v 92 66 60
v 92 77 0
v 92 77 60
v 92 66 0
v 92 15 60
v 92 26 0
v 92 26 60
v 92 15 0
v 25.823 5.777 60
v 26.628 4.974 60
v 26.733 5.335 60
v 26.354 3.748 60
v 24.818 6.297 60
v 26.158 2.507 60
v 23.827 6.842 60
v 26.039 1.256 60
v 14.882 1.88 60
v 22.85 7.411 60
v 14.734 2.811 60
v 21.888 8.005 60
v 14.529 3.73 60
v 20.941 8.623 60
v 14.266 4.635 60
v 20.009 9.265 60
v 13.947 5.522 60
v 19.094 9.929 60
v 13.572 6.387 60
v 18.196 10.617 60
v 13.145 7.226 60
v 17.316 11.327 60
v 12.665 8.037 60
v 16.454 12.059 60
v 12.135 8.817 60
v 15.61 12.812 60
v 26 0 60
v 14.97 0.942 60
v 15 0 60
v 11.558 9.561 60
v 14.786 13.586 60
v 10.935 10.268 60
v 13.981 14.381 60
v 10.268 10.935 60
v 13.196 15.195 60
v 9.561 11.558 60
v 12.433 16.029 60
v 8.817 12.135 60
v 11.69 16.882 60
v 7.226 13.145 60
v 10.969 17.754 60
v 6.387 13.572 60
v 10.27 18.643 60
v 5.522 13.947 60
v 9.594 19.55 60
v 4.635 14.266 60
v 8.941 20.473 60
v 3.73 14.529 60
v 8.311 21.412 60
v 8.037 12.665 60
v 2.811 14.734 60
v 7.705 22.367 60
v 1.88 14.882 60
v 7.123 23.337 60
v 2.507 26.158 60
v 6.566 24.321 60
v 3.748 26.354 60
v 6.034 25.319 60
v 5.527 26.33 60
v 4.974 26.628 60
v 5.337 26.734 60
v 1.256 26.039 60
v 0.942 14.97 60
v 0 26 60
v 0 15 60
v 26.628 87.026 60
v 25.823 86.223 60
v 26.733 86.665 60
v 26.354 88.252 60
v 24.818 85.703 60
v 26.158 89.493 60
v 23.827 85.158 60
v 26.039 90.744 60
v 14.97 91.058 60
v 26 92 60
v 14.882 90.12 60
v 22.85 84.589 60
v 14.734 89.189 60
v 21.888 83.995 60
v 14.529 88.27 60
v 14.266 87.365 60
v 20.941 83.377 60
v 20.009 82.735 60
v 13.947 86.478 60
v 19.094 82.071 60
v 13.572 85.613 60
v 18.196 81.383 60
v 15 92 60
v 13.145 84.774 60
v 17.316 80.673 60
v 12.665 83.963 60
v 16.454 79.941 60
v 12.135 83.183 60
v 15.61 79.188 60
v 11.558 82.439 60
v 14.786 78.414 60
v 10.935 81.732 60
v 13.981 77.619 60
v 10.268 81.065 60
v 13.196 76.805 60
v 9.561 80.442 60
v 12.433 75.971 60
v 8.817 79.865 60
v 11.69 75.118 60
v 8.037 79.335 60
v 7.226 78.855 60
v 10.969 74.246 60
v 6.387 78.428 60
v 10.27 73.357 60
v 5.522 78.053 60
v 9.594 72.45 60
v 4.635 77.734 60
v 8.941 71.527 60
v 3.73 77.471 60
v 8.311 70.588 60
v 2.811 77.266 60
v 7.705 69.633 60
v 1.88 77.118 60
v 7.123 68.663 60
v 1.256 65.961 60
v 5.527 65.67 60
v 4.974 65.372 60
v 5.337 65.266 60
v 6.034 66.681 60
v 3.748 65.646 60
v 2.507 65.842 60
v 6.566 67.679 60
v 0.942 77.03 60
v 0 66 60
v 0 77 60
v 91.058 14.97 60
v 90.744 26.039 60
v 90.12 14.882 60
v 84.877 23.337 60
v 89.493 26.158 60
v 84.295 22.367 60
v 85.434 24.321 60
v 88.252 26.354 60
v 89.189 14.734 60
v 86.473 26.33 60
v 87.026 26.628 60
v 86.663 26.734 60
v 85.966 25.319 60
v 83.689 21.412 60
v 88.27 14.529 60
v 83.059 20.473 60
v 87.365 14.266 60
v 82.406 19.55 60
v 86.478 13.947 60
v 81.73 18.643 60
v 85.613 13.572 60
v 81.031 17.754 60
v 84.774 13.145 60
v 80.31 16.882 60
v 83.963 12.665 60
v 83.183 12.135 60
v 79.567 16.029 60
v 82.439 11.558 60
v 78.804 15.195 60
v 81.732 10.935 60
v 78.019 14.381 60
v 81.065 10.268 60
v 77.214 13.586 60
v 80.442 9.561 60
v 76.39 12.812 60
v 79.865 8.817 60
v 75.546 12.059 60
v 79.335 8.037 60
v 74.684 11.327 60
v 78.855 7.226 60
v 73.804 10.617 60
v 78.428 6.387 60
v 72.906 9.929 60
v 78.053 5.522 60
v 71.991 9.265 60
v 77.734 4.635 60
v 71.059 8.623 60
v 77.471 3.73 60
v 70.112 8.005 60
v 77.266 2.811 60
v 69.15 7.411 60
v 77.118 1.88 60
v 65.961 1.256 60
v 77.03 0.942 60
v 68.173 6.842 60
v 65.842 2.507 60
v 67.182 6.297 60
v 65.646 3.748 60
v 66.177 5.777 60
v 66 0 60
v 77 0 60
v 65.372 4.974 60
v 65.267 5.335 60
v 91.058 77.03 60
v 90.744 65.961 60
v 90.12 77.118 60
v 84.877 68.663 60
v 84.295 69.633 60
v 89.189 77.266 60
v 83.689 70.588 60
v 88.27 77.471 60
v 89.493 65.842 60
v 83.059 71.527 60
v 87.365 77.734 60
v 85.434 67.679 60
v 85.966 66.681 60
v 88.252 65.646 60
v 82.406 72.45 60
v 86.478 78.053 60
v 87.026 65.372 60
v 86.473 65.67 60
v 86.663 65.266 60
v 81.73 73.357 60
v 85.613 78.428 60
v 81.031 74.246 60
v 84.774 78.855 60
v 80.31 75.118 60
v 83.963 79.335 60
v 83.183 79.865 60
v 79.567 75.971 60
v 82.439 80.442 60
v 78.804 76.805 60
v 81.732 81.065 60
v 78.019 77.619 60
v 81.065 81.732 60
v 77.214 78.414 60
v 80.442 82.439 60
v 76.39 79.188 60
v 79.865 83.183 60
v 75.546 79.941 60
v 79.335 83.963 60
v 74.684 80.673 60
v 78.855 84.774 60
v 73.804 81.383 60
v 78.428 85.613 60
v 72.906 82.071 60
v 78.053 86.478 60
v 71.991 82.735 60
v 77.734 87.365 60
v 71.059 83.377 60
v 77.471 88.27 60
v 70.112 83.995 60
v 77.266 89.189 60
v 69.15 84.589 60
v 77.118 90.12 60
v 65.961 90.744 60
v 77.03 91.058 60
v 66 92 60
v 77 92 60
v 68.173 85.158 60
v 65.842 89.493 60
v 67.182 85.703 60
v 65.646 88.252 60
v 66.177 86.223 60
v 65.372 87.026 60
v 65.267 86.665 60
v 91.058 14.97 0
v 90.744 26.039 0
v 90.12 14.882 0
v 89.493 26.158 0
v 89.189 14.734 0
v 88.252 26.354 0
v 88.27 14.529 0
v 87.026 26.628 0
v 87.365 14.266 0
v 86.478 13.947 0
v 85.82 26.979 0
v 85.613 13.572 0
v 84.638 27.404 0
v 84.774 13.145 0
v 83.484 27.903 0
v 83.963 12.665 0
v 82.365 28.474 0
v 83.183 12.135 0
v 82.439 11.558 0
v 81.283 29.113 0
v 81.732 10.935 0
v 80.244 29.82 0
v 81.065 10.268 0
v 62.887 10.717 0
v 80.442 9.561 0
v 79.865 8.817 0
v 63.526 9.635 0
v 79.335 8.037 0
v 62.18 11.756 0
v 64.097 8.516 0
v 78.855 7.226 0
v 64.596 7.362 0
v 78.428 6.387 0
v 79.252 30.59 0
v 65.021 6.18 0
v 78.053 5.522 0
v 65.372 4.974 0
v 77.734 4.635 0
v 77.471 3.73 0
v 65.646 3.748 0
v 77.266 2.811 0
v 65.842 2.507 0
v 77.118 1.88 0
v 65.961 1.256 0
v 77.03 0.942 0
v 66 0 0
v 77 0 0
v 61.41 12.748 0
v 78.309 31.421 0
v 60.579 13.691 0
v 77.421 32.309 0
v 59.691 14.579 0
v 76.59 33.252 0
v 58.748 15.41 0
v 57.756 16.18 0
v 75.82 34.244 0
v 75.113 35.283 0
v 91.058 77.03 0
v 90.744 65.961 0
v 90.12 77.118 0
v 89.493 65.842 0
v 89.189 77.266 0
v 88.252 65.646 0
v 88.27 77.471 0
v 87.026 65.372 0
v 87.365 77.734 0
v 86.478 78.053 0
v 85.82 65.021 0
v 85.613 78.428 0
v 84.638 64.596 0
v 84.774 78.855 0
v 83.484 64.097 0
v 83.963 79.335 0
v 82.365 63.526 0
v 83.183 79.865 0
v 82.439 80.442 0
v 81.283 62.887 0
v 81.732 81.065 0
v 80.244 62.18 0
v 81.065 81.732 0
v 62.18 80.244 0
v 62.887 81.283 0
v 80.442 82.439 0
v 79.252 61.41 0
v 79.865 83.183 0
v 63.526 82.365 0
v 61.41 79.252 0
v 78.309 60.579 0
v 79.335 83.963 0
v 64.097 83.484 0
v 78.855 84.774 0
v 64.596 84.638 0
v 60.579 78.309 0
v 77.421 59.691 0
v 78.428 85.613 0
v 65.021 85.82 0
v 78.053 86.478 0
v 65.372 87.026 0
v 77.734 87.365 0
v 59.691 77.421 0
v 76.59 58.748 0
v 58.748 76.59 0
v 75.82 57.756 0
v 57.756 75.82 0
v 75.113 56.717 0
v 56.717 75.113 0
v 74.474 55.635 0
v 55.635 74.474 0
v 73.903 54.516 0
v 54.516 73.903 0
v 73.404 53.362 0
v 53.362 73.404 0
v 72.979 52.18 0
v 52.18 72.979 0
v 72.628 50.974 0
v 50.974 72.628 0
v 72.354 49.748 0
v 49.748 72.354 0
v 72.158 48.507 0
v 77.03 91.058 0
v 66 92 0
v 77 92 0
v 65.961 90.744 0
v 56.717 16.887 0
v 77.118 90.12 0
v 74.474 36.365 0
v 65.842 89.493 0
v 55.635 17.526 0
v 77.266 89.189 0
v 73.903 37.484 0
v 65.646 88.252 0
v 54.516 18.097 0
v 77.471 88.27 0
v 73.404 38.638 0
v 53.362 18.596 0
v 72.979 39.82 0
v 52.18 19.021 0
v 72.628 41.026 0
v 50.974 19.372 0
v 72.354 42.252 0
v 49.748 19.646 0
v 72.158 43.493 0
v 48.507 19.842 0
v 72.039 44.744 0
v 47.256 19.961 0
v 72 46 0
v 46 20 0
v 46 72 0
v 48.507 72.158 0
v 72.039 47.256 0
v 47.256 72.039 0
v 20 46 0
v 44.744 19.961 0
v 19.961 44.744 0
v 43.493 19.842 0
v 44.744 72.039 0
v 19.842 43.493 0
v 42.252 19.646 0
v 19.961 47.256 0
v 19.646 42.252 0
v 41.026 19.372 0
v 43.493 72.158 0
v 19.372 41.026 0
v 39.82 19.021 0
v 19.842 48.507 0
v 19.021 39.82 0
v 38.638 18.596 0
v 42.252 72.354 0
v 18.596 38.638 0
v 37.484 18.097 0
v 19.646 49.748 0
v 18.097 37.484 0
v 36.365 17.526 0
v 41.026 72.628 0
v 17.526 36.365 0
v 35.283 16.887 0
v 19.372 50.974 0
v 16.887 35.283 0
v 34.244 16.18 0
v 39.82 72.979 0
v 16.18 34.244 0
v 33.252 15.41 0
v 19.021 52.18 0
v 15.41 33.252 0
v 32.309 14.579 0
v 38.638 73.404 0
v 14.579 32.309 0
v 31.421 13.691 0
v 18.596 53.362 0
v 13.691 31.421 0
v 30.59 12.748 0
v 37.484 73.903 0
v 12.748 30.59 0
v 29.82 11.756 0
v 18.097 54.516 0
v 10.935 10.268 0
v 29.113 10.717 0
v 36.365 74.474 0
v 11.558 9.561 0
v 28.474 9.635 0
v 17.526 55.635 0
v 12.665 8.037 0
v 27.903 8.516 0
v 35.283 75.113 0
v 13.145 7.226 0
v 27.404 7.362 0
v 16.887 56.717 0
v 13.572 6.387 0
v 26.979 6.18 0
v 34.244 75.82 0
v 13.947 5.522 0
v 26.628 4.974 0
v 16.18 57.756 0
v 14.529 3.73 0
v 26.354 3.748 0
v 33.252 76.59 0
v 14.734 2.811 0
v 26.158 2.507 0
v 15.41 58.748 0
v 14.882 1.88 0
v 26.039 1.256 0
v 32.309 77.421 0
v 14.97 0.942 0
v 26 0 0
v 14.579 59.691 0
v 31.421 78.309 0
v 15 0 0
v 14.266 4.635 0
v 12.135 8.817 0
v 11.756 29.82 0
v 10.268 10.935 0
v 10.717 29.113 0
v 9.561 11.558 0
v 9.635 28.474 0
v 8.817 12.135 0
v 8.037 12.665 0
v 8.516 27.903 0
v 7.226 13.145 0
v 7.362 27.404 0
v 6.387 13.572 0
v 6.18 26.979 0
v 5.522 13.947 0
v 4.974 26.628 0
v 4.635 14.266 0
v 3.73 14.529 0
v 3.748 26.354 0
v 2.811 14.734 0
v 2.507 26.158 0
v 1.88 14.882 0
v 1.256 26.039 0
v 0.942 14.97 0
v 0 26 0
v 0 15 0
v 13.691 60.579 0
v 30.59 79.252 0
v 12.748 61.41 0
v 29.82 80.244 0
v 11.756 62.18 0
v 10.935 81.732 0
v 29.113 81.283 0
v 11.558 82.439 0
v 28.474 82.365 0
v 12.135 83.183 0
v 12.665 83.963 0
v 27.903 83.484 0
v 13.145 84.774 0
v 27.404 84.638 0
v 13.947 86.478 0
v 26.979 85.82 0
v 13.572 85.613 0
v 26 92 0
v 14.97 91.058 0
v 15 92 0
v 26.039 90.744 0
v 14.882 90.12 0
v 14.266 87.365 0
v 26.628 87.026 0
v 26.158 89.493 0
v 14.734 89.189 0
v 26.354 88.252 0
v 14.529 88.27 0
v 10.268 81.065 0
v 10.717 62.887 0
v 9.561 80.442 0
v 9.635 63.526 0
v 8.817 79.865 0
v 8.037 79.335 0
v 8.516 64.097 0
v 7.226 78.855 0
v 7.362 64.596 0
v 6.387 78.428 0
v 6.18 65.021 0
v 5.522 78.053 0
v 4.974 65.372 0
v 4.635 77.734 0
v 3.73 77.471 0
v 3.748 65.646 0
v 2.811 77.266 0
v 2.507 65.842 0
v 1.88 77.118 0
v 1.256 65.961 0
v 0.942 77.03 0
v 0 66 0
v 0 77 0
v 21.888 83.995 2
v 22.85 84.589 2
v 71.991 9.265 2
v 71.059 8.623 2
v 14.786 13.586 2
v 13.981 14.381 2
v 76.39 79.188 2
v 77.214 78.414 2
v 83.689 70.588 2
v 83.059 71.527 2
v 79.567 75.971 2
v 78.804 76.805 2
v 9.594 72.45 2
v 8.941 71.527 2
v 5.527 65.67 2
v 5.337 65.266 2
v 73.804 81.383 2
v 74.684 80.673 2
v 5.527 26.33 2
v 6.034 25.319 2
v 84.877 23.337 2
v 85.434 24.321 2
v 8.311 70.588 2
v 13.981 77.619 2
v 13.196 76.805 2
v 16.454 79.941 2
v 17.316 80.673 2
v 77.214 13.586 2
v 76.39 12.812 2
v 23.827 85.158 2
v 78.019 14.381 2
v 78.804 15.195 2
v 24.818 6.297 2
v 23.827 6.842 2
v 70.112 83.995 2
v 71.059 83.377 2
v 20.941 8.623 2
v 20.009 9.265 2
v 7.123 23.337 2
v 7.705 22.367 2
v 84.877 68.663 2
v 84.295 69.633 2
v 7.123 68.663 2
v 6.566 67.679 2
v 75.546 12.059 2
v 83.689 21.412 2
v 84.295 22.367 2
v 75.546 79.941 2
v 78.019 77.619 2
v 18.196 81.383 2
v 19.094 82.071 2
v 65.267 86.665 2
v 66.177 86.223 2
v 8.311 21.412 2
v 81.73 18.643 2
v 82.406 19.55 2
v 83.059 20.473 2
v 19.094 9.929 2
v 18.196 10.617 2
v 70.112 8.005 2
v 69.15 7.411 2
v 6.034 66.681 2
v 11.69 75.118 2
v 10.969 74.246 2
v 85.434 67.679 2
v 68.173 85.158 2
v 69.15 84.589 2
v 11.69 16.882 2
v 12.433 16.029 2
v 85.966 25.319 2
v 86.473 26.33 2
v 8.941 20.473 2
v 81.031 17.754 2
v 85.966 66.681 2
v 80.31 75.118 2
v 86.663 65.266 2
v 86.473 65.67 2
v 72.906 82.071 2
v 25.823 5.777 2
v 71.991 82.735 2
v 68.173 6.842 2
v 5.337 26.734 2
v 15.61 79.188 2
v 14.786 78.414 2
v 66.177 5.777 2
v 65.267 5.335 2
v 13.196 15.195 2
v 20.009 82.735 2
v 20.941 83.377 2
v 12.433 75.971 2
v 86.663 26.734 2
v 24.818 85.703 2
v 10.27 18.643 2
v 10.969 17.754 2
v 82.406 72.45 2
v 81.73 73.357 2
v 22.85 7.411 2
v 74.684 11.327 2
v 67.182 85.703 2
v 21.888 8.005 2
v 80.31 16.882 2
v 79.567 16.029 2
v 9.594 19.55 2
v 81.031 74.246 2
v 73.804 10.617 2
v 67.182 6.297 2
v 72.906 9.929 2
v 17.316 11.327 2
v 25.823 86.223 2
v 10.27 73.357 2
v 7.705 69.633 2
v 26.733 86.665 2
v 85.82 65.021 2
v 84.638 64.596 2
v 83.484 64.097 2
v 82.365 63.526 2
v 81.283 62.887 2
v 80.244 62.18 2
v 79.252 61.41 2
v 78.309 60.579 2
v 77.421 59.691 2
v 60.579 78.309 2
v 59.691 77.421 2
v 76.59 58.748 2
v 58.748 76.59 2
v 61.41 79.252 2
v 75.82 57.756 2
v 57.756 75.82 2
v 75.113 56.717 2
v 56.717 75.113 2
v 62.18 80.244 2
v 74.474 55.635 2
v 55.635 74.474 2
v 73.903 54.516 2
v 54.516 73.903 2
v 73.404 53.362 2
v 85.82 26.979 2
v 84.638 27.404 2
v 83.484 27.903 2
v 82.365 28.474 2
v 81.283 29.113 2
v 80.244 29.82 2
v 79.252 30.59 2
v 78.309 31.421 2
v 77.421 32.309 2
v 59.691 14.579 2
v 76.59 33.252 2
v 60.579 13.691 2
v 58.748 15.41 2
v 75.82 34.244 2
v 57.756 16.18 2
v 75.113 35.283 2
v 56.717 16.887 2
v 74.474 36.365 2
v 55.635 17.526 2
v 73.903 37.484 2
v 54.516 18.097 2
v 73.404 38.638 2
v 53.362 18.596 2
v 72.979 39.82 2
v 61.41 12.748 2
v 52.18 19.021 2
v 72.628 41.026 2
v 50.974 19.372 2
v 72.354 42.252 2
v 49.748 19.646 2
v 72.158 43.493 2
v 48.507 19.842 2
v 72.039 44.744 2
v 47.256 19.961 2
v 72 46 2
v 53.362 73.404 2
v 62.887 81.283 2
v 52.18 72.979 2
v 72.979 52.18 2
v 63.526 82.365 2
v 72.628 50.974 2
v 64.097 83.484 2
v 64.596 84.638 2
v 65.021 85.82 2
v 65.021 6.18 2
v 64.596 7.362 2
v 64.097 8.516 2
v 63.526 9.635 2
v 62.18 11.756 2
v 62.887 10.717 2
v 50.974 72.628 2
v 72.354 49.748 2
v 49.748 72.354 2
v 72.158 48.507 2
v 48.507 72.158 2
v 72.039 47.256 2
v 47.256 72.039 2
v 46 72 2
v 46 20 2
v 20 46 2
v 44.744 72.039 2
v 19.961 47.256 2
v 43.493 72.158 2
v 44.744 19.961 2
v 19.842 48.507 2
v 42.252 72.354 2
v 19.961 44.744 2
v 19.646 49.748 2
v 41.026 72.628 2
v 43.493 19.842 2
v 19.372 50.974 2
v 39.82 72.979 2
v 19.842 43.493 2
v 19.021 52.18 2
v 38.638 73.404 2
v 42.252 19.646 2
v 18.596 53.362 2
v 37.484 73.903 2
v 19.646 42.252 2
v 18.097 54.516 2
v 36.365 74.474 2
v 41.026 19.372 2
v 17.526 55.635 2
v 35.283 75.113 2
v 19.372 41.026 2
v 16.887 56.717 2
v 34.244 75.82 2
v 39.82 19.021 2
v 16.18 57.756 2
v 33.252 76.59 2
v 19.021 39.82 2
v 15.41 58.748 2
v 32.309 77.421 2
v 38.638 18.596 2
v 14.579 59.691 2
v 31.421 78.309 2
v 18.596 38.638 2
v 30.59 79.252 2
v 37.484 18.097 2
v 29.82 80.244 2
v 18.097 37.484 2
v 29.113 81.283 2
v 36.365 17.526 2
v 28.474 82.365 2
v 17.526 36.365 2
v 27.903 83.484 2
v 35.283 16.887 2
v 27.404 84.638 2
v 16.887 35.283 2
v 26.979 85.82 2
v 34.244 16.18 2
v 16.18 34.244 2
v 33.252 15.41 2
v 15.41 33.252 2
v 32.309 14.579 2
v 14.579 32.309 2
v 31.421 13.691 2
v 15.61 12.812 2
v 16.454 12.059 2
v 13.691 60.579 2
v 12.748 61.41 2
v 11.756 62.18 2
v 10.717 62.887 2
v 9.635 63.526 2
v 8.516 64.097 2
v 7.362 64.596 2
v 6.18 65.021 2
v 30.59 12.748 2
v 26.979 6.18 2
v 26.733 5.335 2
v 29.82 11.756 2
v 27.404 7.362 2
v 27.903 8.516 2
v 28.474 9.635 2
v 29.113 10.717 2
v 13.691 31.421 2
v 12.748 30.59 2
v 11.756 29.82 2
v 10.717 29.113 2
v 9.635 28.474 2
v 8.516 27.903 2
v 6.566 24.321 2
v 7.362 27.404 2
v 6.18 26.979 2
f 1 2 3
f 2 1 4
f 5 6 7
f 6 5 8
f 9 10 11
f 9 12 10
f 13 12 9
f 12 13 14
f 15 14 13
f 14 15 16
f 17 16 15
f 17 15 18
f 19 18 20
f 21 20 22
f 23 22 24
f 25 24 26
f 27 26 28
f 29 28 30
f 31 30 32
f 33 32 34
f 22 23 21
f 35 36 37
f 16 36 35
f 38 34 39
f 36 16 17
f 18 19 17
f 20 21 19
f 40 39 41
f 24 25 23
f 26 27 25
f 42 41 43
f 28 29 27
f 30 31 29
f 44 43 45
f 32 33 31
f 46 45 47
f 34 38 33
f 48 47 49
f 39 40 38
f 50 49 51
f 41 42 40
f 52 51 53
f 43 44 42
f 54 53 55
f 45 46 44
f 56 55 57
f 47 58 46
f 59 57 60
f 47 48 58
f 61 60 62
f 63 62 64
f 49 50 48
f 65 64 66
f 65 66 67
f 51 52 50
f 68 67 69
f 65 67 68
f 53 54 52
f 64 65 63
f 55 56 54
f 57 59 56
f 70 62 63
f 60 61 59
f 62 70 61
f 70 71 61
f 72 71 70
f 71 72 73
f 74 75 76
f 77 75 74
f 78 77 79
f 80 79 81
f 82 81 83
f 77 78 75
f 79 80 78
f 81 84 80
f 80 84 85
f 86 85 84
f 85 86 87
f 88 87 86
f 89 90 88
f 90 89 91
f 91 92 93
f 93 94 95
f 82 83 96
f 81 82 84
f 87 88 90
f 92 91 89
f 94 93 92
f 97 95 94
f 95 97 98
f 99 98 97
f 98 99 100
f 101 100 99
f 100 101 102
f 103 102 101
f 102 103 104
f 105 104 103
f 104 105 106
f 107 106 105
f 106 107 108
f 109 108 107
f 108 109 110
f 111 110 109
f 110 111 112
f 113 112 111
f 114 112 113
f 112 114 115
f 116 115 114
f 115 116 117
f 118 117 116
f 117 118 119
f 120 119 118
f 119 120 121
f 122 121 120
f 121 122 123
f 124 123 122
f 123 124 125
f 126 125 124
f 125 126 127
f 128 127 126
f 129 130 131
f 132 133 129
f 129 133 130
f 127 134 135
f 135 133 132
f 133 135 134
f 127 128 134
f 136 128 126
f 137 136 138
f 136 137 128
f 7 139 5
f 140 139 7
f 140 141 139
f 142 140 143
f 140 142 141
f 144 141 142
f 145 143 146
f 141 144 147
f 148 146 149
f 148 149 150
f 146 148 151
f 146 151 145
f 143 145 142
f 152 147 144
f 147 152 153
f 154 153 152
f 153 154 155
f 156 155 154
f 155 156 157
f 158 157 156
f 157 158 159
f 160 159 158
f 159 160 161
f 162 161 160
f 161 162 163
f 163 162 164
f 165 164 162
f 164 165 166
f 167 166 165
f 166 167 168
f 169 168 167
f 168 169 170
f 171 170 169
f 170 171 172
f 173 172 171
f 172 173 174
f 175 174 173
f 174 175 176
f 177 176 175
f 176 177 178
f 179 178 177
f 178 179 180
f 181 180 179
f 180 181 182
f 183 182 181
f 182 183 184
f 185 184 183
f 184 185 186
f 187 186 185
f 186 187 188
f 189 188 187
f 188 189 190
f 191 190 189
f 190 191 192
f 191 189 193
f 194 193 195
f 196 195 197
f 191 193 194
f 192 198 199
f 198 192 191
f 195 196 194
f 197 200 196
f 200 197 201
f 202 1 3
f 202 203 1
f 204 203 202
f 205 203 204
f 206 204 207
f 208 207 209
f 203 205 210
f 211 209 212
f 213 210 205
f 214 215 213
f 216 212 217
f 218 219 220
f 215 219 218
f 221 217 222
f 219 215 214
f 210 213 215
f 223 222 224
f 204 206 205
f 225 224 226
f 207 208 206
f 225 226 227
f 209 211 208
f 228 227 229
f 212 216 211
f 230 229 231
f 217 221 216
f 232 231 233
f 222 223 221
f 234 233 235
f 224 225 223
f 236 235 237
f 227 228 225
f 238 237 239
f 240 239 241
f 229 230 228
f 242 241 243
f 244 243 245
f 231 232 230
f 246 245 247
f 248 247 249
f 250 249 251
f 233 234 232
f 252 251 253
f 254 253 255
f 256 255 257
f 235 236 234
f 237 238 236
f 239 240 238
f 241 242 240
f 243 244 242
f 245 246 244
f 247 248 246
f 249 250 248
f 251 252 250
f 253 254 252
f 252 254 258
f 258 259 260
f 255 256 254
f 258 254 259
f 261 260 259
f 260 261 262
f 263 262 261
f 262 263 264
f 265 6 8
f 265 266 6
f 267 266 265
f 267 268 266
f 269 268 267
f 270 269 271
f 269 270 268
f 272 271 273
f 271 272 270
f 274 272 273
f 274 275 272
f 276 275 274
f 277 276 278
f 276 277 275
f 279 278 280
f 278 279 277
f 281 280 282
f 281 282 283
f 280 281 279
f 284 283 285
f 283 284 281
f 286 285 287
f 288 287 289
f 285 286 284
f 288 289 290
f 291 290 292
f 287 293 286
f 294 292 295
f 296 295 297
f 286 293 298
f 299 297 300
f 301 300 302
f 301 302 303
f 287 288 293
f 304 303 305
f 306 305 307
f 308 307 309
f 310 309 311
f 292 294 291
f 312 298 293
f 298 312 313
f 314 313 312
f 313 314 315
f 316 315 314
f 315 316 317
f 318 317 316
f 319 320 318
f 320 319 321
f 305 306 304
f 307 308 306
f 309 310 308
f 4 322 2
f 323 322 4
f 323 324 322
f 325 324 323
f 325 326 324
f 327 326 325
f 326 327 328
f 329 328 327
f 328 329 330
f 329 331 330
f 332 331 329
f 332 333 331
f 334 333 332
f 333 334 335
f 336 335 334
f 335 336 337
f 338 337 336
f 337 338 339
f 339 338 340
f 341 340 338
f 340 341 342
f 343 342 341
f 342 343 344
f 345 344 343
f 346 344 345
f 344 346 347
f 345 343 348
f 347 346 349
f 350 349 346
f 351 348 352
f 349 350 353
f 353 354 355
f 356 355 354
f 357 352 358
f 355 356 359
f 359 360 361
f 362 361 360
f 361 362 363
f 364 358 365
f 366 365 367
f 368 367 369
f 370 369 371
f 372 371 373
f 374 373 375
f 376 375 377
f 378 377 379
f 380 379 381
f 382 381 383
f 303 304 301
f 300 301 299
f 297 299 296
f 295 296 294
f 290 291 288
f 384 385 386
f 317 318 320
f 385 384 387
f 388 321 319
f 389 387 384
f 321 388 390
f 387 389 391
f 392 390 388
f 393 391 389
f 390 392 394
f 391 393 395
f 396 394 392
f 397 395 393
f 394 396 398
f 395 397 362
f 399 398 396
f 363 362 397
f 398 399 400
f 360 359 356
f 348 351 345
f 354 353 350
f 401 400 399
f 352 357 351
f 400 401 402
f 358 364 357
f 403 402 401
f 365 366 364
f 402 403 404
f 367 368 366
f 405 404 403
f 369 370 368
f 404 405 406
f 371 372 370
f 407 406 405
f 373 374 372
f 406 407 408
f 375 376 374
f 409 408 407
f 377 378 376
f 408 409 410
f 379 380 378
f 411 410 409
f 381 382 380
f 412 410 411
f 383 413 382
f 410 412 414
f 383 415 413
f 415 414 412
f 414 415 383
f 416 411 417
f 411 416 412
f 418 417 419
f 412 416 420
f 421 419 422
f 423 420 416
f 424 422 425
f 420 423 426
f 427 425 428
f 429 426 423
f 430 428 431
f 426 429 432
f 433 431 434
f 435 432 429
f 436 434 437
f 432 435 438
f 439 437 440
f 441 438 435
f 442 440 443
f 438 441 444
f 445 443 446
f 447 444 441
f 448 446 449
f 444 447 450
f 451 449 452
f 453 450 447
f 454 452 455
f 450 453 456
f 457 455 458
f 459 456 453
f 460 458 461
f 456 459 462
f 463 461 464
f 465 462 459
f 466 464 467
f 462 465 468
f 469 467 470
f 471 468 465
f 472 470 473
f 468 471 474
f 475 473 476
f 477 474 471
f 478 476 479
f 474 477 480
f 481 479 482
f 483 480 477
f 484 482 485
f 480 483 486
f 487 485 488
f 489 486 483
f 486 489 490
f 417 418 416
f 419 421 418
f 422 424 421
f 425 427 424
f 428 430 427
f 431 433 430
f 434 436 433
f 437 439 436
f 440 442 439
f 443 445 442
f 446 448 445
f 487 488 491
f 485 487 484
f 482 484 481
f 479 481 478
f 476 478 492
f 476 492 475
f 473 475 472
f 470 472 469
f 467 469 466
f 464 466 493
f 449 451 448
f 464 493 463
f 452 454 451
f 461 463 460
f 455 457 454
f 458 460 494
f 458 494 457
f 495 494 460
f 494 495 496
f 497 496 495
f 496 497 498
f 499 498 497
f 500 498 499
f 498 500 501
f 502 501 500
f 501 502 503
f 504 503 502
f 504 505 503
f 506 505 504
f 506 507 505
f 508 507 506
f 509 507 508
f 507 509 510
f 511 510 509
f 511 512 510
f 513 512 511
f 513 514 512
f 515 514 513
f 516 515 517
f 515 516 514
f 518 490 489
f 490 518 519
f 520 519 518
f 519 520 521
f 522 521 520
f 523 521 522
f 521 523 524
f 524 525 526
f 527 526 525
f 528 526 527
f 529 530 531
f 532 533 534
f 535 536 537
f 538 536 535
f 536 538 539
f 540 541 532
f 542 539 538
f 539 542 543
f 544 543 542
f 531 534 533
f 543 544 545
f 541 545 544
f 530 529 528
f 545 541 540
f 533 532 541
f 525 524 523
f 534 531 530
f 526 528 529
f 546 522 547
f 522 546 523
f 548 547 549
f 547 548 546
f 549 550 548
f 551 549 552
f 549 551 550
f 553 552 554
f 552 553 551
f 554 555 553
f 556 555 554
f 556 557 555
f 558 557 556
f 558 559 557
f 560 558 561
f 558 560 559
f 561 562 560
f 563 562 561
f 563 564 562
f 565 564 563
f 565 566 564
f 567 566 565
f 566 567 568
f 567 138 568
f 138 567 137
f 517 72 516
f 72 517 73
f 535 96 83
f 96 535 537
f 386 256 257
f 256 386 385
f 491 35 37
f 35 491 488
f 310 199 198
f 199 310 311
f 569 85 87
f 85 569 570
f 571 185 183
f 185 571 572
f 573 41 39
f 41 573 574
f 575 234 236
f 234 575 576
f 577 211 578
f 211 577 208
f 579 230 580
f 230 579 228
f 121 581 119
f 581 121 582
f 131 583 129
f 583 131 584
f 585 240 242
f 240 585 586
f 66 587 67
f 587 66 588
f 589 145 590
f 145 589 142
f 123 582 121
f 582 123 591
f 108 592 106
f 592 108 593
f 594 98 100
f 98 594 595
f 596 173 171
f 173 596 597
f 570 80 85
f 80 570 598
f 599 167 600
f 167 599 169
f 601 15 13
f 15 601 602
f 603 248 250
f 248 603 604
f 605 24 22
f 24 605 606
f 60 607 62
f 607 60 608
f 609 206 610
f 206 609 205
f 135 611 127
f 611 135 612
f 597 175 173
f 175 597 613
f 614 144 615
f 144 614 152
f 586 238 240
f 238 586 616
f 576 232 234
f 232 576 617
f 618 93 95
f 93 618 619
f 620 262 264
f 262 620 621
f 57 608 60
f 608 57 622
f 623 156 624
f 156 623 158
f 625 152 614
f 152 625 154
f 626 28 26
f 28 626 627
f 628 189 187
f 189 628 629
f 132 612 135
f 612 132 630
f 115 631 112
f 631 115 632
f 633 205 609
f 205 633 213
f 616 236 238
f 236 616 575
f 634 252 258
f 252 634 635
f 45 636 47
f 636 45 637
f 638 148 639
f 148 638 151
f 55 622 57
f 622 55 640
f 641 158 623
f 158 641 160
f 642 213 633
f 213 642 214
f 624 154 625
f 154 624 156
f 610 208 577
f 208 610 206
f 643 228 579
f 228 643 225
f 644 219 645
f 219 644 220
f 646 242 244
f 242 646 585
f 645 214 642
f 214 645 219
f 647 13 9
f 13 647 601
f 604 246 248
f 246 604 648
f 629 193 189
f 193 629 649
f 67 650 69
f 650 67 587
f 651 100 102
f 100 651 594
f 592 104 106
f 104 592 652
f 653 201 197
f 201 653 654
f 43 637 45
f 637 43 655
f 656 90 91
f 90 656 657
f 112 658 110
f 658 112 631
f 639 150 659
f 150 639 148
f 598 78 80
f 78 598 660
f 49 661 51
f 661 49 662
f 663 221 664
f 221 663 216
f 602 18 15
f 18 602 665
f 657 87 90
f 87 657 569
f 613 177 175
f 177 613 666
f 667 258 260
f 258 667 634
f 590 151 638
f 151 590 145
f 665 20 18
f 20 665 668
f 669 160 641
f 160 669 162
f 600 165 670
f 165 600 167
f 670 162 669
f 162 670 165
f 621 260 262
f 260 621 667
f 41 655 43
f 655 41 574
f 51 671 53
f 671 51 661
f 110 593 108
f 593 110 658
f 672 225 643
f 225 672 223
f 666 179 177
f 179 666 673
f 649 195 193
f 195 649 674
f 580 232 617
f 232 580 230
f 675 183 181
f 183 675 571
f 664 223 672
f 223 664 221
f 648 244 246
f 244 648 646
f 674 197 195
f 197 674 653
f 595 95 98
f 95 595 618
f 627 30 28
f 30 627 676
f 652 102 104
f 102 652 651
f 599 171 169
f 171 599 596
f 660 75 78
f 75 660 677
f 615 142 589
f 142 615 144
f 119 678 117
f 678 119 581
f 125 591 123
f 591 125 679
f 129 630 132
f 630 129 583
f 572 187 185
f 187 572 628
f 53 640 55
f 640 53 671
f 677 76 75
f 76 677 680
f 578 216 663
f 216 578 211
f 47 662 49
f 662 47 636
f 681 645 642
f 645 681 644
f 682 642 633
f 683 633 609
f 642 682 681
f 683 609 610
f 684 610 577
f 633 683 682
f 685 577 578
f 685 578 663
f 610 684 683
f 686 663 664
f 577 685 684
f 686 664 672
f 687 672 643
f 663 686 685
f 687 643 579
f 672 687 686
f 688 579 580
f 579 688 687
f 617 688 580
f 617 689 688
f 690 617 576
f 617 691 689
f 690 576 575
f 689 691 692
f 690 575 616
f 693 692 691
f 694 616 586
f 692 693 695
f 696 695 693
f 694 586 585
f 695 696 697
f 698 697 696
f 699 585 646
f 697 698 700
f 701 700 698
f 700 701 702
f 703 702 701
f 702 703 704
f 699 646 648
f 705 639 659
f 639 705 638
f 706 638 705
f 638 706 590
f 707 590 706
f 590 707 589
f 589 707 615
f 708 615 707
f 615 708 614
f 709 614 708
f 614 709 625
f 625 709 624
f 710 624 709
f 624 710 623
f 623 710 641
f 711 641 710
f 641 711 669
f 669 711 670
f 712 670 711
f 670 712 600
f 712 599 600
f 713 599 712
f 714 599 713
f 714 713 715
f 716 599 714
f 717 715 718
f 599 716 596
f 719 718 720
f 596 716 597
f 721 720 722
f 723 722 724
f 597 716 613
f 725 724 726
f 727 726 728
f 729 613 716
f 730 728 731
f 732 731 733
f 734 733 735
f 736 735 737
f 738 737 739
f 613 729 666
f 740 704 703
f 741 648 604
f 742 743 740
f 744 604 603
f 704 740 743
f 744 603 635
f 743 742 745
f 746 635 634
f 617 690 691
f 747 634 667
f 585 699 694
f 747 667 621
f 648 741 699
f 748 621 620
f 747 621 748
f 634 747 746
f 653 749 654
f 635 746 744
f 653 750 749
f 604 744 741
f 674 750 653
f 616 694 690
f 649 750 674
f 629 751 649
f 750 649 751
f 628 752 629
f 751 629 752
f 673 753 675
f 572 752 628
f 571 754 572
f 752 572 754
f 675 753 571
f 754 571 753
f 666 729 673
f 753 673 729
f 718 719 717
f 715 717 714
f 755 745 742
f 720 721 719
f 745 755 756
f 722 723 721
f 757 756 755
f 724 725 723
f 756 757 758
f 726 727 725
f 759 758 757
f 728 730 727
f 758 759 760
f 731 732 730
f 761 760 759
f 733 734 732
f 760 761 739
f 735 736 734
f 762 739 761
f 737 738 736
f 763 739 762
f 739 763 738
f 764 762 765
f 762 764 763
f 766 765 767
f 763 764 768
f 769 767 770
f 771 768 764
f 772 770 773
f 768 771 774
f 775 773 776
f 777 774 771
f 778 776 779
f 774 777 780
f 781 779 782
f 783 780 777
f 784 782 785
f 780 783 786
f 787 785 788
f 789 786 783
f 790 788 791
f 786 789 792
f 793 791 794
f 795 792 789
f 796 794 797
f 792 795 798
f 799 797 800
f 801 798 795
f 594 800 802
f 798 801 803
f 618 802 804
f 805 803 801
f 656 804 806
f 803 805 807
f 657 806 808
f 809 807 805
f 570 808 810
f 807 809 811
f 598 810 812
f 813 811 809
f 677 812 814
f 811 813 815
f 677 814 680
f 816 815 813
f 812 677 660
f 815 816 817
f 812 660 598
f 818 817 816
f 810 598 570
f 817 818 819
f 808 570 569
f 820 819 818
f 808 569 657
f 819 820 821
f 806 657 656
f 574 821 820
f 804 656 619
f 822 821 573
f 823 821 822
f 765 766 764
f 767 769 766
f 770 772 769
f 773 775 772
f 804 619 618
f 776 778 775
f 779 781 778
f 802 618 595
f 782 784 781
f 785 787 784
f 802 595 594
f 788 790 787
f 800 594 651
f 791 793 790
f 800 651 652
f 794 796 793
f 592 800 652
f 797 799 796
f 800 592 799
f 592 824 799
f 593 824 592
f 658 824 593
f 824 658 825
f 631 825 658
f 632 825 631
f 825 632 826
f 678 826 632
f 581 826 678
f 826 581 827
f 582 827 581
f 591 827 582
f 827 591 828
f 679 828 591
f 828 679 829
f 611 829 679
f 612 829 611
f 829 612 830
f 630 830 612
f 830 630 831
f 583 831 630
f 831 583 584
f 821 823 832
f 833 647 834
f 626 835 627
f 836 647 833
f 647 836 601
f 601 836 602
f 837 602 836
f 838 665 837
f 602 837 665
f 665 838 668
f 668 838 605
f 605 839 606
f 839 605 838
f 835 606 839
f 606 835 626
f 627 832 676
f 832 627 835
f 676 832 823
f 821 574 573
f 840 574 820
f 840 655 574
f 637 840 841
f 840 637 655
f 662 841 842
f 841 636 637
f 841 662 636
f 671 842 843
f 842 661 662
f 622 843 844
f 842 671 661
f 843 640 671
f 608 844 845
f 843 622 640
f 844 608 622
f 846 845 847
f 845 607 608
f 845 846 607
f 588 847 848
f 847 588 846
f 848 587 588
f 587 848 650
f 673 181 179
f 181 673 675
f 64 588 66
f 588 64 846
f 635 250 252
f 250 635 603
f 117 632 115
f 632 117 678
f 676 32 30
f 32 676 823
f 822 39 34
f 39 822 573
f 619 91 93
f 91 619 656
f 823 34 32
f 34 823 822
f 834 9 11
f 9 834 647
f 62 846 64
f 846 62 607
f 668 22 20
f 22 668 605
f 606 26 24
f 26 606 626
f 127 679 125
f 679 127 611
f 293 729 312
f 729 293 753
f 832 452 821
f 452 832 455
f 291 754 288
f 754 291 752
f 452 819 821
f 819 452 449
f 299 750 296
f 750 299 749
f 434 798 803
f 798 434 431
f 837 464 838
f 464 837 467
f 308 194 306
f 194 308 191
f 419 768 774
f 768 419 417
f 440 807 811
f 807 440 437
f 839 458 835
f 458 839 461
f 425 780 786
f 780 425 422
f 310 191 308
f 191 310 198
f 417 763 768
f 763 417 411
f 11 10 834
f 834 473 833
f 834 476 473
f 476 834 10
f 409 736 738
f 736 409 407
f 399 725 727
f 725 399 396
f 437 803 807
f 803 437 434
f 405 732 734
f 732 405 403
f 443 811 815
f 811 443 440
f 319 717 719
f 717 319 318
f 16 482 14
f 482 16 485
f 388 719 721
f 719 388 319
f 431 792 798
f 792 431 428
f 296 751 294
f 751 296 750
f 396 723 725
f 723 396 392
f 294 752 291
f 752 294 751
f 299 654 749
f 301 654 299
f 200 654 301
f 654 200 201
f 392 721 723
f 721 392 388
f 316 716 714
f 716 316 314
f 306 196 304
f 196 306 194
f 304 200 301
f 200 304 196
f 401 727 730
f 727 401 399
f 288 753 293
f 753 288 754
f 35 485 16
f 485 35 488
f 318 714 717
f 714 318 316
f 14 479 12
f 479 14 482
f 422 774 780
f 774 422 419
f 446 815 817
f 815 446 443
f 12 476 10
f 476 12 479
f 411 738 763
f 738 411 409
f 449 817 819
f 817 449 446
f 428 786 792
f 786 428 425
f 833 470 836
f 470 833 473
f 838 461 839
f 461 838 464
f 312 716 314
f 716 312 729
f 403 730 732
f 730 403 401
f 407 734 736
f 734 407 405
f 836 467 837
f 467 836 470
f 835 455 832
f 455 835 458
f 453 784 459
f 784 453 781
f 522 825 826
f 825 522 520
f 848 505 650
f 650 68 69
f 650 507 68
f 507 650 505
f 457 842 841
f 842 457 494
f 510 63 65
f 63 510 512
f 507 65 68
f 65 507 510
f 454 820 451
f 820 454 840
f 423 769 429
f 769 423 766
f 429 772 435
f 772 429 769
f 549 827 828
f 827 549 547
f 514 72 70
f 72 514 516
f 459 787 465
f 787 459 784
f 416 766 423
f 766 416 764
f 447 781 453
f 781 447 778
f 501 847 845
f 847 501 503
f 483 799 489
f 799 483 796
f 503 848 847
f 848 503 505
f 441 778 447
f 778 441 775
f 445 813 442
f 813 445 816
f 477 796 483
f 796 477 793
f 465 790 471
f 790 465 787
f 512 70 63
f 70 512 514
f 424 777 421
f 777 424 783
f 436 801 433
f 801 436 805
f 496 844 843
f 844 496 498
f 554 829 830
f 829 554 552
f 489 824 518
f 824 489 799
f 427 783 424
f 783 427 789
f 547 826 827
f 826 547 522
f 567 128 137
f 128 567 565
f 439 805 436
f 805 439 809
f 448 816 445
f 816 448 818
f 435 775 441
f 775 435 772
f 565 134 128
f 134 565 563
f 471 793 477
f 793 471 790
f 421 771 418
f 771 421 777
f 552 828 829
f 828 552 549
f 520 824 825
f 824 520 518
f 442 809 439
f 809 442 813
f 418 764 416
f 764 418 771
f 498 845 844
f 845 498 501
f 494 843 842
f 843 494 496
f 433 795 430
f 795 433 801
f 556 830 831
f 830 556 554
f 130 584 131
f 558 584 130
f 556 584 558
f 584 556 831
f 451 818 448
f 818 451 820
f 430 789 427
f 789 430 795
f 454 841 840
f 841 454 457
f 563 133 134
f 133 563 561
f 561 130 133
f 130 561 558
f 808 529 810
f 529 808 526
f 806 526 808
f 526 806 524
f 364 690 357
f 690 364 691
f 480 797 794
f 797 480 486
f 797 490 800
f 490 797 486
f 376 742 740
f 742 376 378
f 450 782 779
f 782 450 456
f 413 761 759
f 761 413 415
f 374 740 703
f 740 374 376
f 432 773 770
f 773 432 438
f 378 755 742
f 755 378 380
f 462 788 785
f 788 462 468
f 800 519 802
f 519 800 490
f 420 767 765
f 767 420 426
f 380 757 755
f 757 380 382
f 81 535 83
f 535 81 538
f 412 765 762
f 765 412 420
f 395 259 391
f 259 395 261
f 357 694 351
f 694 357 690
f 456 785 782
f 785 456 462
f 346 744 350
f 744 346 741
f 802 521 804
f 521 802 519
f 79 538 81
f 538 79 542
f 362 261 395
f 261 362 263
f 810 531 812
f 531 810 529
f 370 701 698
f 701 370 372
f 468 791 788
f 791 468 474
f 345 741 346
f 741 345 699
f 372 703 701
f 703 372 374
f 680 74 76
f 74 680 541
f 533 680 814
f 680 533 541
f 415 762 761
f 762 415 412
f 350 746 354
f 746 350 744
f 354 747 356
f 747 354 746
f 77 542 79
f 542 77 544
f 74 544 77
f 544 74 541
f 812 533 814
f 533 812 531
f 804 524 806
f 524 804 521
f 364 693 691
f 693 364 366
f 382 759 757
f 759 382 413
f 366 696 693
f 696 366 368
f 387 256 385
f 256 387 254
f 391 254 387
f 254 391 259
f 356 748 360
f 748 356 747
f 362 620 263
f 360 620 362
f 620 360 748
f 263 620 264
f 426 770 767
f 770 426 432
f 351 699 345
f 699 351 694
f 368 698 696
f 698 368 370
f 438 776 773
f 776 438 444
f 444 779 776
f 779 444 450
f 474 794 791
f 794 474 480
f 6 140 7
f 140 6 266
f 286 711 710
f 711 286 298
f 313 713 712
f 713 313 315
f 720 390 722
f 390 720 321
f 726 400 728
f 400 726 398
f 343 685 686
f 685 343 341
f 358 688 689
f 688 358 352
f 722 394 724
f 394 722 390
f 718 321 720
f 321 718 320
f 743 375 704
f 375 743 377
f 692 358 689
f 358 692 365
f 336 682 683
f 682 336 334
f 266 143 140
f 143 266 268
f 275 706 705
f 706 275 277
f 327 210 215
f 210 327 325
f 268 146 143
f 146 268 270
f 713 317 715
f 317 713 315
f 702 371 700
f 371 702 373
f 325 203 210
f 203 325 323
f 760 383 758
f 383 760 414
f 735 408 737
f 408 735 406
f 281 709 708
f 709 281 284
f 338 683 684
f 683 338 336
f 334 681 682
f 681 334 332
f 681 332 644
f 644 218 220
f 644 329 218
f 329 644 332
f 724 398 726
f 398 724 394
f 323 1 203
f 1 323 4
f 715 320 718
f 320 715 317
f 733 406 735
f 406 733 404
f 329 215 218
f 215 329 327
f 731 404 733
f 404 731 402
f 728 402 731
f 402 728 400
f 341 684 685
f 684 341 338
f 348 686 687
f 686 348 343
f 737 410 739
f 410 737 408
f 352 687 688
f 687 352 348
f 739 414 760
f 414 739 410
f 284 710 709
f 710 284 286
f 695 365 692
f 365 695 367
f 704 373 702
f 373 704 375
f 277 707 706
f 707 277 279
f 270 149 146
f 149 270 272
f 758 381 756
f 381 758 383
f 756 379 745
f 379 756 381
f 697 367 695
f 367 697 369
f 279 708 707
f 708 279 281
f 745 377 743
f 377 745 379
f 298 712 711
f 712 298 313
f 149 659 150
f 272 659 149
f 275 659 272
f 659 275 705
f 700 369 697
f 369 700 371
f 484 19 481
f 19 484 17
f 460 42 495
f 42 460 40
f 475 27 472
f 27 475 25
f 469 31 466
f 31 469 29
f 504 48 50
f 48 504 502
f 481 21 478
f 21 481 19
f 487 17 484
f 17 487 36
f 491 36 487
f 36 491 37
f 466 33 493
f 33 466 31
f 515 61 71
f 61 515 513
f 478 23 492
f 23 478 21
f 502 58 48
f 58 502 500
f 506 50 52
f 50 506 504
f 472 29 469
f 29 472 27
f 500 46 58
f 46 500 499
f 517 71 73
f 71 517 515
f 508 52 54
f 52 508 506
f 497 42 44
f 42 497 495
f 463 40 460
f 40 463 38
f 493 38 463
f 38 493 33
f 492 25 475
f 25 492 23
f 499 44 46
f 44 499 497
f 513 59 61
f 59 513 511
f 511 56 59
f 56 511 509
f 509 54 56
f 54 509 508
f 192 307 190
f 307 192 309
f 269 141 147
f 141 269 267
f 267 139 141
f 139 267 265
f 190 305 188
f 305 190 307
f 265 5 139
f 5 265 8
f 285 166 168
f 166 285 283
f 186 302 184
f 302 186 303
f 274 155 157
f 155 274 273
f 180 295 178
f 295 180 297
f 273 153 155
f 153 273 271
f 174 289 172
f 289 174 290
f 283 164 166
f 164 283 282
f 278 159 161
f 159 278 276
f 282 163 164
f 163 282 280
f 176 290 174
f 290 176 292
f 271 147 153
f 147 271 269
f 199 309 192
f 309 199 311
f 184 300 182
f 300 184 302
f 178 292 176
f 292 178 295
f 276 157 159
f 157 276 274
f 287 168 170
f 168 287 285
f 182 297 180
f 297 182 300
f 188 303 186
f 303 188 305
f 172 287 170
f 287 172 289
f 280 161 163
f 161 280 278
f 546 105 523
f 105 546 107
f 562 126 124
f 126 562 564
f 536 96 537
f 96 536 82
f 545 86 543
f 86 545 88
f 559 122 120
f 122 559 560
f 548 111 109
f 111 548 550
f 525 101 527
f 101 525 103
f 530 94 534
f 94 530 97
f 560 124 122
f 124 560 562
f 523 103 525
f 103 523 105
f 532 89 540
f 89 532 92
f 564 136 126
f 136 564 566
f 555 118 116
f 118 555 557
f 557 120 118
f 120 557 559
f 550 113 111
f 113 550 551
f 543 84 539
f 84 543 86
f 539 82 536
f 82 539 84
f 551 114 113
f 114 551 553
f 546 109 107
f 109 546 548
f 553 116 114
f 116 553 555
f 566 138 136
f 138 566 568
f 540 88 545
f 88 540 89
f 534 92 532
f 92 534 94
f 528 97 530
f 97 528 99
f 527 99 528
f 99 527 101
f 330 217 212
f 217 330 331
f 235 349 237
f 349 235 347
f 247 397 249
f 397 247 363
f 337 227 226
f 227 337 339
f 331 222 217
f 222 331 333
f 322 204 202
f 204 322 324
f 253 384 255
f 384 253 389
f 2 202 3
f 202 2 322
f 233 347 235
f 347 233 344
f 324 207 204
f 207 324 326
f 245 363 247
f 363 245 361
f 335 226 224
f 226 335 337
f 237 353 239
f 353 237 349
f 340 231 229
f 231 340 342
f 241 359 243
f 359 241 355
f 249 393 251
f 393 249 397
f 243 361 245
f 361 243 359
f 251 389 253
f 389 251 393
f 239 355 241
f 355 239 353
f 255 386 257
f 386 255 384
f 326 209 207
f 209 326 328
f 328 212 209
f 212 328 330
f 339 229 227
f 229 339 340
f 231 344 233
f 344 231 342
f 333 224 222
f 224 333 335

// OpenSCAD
Sys_r = 90/2;
Sys_height = 58;

Floor_power = 2;
Wall_power = 1;

Finger = 20;

difference(){
	cube([ 2*Sys_r+2*Wall_power , 2*Sys_r+2*Wall_power , Floor_power+Sys_height ]);
	#translate([ Wall_power+Sys_r , Wall_power+Sys_r , Floor_power ]) cylinder(Sys_height+0.1,r=Sys_r,$fn=250);
	
	translate([ Wall_power+Sys_r , 0 , -1 ]) cylinder(Sys_height+Floor_power+3,r=Finger , $fn=100);
	translate([ 0 , Wall_power+Sys_r , -1 ]) cylinder(Sys_height+Floor_power+3,r=Finger , $fn=100);
	translate([ Wall_power+Sys_r , 2*Wall_power+2*Sys_r , -1 ]) cylinder(Sys_height+Floor_power+3,r=Finger , $fn=100);
	translate([ 2*Wall_power+2*Sys_r , Wall_power+Sys_r , -1 ]) cylinder(Sys_height+Floor_power+3,r=Finger , $fn=100);
	
	SMOOTH = 15;
	PATH = 2*Sys_r+2*Wall_power;
	translate([ 0 , 0 , -1 ]) cylinder(Sys_height+Floor_power+3 , r=SMOOTH , $fn=100);
	translate([ PATH , 0 , -1 ]) cylinder(Sys_height+Floor_power+3 , r=SMOOTH , $fn=100);
	translate([ 0 , PATH , -1 ]) cylinder(Sys_height+Floor_power+3 , r=SMOOTH , $fn=100);
	translate([ PATH , PATH , -1 ]) cylinder(Sys_height+Floor_power+3 , r=SMOOTH , $fn=100);
};
